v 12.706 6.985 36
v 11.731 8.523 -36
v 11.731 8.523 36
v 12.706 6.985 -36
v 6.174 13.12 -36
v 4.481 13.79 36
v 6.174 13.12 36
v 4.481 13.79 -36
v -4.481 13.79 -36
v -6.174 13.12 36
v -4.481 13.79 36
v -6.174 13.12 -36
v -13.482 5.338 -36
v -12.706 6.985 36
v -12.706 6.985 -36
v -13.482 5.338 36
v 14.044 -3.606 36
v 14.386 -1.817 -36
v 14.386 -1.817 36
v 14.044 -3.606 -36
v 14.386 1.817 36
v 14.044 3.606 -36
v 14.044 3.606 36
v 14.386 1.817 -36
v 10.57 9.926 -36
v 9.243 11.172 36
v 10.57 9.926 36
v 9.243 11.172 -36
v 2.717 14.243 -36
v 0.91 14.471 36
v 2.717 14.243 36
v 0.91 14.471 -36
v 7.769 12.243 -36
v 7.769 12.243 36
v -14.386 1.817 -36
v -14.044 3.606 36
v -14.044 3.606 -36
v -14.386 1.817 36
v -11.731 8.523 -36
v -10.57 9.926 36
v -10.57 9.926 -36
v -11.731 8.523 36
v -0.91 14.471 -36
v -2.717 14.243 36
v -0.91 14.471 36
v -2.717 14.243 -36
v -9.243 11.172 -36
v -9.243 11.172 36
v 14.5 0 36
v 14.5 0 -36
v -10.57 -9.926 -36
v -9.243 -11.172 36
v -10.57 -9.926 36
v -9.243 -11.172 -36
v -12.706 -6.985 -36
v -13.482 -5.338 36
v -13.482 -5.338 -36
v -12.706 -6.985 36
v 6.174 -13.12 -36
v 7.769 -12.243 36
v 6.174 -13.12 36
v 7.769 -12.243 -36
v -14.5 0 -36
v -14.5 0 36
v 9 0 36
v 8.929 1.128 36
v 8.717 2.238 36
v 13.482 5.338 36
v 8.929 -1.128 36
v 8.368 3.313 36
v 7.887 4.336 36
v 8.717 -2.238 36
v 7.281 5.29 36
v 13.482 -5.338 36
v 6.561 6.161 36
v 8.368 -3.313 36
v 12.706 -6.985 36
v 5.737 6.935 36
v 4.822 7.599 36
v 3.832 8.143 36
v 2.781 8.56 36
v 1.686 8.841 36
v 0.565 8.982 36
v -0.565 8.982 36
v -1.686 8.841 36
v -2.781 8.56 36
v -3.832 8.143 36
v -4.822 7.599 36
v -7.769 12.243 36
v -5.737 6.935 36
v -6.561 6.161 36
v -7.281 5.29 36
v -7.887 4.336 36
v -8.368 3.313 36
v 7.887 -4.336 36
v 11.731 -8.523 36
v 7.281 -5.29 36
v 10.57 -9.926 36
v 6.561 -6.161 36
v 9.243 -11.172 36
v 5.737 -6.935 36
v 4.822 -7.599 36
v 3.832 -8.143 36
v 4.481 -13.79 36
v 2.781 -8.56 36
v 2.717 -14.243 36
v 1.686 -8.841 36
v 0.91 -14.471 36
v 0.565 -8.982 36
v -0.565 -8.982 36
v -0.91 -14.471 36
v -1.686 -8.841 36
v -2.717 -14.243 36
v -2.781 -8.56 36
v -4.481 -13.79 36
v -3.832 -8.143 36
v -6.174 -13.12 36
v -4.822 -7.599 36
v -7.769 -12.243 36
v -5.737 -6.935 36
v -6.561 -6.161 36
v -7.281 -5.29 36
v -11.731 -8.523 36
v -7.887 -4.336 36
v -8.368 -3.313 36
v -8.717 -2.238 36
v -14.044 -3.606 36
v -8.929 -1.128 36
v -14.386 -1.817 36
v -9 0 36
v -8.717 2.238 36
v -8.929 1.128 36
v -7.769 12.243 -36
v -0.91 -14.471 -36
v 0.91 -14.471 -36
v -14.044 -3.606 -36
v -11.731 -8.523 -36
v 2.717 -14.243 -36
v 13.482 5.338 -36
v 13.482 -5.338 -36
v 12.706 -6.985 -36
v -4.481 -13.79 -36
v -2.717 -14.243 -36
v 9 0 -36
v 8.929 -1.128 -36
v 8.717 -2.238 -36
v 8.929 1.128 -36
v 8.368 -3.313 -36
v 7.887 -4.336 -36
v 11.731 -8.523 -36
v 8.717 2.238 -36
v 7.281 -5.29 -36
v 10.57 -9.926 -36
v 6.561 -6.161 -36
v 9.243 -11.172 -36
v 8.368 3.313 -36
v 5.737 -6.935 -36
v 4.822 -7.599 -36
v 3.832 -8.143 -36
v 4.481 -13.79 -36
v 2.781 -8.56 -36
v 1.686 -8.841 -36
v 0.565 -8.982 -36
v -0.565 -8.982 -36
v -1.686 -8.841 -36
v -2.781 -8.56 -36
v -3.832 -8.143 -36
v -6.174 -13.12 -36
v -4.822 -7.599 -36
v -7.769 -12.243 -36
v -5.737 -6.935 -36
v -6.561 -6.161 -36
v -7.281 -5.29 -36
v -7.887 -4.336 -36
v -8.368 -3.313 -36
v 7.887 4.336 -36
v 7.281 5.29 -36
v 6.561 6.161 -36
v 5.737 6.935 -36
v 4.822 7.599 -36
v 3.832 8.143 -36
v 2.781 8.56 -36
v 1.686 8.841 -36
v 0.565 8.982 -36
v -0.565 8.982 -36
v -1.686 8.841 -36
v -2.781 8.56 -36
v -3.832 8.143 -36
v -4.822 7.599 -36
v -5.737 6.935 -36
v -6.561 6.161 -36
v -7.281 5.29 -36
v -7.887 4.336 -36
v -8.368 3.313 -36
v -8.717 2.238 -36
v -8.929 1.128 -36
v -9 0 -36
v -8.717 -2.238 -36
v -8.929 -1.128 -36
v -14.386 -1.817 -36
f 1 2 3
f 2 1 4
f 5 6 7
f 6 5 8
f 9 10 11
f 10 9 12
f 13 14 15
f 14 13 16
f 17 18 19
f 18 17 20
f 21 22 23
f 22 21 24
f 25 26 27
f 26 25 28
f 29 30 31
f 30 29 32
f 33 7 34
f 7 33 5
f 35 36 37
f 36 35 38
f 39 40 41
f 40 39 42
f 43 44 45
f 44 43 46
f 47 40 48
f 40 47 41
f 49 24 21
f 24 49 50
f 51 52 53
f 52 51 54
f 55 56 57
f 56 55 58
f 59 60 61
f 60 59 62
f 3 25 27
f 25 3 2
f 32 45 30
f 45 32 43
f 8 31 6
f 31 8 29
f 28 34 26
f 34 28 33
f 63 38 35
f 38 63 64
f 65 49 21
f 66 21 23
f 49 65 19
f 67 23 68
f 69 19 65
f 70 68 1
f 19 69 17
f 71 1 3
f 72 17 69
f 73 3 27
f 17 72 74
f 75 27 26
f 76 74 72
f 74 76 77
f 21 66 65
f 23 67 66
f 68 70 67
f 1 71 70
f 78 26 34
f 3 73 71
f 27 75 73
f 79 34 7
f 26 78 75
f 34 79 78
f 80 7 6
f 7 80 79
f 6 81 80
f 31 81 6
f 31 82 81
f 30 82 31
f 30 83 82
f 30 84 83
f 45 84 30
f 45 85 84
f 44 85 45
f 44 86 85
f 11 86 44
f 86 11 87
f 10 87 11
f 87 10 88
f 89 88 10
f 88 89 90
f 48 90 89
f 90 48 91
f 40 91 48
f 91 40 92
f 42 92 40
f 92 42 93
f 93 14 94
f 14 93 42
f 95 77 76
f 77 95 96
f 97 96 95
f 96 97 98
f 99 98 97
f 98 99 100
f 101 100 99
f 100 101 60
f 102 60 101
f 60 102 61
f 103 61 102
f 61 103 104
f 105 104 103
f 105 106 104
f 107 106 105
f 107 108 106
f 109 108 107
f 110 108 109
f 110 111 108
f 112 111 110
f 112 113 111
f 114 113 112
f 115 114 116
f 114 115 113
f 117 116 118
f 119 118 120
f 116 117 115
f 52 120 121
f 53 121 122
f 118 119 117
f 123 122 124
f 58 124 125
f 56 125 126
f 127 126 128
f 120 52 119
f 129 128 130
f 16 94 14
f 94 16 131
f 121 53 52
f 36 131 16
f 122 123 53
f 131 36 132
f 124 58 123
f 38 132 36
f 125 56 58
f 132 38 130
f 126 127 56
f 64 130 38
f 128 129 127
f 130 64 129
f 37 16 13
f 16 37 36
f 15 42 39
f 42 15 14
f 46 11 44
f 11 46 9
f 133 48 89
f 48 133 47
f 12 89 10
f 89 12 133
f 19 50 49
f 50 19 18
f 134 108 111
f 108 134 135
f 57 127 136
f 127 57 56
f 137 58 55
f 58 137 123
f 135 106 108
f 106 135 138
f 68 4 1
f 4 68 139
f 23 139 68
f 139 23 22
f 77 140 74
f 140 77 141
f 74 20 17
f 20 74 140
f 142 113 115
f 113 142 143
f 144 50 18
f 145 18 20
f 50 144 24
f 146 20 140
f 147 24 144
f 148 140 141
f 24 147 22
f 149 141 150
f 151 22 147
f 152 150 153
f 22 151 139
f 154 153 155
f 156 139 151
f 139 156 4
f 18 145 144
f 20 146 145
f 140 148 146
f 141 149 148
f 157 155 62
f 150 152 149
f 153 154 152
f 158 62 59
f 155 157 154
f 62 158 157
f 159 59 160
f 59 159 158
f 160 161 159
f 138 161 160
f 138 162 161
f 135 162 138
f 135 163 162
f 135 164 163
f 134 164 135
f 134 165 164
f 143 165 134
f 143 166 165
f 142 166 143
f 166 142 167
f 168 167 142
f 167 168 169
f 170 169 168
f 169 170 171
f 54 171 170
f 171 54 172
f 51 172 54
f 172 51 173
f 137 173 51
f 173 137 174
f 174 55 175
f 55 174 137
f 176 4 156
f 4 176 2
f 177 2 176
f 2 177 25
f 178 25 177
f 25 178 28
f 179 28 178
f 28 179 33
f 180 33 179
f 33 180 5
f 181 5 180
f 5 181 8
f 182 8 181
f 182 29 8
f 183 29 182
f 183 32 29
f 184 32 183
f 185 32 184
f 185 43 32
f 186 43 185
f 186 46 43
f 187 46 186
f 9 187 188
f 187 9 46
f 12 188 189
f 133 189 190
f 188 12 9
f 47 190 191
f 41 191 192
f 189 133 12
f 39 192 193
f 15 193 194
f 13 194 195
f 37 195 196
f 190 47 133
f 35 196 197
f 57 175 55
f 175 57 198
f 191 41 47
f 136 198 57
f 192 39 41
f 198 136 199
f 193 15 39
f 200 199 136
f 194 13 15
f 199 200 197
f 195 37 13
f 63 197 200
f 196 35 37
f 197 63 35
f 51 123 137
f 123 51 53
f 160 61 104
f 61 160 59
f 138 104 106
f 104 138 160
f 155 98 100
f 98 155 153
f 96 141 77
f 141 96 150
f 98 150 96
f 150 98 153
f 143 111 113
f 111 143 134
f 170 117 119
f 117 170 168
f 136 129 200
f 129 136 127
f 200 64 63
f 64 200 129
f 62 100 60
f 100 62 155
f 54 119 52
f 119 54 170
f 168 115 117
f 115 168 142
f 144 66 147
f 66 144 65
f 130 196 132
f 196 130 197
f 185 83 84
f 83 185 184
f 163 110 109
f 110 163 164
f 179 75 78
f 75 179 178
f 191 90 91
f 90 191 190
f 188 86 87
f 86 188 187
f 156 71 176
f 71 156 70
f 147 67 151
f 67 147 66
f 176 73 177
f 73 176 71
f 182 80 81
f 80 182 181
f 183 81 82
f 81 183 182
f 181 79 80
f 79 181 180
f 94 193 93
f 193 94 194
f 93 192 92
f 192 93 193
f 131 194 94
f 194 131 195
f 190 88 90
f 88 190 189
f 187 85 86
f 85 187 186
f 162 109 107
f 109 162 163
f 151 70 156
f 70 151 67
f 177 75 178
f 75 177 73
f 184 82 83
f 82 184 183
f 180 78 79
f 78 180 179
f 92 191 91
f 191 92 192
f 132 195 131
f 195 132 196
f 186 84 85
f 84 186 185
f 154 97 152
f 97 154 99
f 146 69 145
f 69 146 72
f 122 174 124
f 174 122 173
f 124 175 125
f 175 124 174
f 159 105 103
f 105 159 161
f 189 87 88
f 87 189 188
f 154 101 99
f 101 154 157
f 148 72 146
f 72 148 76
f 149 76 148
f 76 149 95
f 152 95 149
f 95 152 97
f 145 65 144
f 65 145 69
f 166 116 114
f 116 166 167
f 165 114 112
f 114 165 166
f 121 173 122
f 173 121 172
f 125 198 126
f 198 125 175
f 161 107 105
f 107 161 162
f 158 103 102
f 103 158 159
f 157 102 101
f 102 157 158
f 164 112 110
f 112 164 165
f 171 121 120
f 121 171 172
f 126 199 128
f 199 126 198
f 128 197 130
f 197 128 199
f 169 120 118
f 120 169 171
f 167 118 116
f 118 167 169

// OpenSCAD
$fn = 50;


difference() {
	union() {
		translate(v = [0, 0, -36.0000000000]) {
			cylinder(h = 72, r = 14.5000000000);
		}
	}
	union() {
		translate(v = [0, 0, -100.0000000000]) {
			cylinder(h = 200, r = 9);
		}
	}
}
